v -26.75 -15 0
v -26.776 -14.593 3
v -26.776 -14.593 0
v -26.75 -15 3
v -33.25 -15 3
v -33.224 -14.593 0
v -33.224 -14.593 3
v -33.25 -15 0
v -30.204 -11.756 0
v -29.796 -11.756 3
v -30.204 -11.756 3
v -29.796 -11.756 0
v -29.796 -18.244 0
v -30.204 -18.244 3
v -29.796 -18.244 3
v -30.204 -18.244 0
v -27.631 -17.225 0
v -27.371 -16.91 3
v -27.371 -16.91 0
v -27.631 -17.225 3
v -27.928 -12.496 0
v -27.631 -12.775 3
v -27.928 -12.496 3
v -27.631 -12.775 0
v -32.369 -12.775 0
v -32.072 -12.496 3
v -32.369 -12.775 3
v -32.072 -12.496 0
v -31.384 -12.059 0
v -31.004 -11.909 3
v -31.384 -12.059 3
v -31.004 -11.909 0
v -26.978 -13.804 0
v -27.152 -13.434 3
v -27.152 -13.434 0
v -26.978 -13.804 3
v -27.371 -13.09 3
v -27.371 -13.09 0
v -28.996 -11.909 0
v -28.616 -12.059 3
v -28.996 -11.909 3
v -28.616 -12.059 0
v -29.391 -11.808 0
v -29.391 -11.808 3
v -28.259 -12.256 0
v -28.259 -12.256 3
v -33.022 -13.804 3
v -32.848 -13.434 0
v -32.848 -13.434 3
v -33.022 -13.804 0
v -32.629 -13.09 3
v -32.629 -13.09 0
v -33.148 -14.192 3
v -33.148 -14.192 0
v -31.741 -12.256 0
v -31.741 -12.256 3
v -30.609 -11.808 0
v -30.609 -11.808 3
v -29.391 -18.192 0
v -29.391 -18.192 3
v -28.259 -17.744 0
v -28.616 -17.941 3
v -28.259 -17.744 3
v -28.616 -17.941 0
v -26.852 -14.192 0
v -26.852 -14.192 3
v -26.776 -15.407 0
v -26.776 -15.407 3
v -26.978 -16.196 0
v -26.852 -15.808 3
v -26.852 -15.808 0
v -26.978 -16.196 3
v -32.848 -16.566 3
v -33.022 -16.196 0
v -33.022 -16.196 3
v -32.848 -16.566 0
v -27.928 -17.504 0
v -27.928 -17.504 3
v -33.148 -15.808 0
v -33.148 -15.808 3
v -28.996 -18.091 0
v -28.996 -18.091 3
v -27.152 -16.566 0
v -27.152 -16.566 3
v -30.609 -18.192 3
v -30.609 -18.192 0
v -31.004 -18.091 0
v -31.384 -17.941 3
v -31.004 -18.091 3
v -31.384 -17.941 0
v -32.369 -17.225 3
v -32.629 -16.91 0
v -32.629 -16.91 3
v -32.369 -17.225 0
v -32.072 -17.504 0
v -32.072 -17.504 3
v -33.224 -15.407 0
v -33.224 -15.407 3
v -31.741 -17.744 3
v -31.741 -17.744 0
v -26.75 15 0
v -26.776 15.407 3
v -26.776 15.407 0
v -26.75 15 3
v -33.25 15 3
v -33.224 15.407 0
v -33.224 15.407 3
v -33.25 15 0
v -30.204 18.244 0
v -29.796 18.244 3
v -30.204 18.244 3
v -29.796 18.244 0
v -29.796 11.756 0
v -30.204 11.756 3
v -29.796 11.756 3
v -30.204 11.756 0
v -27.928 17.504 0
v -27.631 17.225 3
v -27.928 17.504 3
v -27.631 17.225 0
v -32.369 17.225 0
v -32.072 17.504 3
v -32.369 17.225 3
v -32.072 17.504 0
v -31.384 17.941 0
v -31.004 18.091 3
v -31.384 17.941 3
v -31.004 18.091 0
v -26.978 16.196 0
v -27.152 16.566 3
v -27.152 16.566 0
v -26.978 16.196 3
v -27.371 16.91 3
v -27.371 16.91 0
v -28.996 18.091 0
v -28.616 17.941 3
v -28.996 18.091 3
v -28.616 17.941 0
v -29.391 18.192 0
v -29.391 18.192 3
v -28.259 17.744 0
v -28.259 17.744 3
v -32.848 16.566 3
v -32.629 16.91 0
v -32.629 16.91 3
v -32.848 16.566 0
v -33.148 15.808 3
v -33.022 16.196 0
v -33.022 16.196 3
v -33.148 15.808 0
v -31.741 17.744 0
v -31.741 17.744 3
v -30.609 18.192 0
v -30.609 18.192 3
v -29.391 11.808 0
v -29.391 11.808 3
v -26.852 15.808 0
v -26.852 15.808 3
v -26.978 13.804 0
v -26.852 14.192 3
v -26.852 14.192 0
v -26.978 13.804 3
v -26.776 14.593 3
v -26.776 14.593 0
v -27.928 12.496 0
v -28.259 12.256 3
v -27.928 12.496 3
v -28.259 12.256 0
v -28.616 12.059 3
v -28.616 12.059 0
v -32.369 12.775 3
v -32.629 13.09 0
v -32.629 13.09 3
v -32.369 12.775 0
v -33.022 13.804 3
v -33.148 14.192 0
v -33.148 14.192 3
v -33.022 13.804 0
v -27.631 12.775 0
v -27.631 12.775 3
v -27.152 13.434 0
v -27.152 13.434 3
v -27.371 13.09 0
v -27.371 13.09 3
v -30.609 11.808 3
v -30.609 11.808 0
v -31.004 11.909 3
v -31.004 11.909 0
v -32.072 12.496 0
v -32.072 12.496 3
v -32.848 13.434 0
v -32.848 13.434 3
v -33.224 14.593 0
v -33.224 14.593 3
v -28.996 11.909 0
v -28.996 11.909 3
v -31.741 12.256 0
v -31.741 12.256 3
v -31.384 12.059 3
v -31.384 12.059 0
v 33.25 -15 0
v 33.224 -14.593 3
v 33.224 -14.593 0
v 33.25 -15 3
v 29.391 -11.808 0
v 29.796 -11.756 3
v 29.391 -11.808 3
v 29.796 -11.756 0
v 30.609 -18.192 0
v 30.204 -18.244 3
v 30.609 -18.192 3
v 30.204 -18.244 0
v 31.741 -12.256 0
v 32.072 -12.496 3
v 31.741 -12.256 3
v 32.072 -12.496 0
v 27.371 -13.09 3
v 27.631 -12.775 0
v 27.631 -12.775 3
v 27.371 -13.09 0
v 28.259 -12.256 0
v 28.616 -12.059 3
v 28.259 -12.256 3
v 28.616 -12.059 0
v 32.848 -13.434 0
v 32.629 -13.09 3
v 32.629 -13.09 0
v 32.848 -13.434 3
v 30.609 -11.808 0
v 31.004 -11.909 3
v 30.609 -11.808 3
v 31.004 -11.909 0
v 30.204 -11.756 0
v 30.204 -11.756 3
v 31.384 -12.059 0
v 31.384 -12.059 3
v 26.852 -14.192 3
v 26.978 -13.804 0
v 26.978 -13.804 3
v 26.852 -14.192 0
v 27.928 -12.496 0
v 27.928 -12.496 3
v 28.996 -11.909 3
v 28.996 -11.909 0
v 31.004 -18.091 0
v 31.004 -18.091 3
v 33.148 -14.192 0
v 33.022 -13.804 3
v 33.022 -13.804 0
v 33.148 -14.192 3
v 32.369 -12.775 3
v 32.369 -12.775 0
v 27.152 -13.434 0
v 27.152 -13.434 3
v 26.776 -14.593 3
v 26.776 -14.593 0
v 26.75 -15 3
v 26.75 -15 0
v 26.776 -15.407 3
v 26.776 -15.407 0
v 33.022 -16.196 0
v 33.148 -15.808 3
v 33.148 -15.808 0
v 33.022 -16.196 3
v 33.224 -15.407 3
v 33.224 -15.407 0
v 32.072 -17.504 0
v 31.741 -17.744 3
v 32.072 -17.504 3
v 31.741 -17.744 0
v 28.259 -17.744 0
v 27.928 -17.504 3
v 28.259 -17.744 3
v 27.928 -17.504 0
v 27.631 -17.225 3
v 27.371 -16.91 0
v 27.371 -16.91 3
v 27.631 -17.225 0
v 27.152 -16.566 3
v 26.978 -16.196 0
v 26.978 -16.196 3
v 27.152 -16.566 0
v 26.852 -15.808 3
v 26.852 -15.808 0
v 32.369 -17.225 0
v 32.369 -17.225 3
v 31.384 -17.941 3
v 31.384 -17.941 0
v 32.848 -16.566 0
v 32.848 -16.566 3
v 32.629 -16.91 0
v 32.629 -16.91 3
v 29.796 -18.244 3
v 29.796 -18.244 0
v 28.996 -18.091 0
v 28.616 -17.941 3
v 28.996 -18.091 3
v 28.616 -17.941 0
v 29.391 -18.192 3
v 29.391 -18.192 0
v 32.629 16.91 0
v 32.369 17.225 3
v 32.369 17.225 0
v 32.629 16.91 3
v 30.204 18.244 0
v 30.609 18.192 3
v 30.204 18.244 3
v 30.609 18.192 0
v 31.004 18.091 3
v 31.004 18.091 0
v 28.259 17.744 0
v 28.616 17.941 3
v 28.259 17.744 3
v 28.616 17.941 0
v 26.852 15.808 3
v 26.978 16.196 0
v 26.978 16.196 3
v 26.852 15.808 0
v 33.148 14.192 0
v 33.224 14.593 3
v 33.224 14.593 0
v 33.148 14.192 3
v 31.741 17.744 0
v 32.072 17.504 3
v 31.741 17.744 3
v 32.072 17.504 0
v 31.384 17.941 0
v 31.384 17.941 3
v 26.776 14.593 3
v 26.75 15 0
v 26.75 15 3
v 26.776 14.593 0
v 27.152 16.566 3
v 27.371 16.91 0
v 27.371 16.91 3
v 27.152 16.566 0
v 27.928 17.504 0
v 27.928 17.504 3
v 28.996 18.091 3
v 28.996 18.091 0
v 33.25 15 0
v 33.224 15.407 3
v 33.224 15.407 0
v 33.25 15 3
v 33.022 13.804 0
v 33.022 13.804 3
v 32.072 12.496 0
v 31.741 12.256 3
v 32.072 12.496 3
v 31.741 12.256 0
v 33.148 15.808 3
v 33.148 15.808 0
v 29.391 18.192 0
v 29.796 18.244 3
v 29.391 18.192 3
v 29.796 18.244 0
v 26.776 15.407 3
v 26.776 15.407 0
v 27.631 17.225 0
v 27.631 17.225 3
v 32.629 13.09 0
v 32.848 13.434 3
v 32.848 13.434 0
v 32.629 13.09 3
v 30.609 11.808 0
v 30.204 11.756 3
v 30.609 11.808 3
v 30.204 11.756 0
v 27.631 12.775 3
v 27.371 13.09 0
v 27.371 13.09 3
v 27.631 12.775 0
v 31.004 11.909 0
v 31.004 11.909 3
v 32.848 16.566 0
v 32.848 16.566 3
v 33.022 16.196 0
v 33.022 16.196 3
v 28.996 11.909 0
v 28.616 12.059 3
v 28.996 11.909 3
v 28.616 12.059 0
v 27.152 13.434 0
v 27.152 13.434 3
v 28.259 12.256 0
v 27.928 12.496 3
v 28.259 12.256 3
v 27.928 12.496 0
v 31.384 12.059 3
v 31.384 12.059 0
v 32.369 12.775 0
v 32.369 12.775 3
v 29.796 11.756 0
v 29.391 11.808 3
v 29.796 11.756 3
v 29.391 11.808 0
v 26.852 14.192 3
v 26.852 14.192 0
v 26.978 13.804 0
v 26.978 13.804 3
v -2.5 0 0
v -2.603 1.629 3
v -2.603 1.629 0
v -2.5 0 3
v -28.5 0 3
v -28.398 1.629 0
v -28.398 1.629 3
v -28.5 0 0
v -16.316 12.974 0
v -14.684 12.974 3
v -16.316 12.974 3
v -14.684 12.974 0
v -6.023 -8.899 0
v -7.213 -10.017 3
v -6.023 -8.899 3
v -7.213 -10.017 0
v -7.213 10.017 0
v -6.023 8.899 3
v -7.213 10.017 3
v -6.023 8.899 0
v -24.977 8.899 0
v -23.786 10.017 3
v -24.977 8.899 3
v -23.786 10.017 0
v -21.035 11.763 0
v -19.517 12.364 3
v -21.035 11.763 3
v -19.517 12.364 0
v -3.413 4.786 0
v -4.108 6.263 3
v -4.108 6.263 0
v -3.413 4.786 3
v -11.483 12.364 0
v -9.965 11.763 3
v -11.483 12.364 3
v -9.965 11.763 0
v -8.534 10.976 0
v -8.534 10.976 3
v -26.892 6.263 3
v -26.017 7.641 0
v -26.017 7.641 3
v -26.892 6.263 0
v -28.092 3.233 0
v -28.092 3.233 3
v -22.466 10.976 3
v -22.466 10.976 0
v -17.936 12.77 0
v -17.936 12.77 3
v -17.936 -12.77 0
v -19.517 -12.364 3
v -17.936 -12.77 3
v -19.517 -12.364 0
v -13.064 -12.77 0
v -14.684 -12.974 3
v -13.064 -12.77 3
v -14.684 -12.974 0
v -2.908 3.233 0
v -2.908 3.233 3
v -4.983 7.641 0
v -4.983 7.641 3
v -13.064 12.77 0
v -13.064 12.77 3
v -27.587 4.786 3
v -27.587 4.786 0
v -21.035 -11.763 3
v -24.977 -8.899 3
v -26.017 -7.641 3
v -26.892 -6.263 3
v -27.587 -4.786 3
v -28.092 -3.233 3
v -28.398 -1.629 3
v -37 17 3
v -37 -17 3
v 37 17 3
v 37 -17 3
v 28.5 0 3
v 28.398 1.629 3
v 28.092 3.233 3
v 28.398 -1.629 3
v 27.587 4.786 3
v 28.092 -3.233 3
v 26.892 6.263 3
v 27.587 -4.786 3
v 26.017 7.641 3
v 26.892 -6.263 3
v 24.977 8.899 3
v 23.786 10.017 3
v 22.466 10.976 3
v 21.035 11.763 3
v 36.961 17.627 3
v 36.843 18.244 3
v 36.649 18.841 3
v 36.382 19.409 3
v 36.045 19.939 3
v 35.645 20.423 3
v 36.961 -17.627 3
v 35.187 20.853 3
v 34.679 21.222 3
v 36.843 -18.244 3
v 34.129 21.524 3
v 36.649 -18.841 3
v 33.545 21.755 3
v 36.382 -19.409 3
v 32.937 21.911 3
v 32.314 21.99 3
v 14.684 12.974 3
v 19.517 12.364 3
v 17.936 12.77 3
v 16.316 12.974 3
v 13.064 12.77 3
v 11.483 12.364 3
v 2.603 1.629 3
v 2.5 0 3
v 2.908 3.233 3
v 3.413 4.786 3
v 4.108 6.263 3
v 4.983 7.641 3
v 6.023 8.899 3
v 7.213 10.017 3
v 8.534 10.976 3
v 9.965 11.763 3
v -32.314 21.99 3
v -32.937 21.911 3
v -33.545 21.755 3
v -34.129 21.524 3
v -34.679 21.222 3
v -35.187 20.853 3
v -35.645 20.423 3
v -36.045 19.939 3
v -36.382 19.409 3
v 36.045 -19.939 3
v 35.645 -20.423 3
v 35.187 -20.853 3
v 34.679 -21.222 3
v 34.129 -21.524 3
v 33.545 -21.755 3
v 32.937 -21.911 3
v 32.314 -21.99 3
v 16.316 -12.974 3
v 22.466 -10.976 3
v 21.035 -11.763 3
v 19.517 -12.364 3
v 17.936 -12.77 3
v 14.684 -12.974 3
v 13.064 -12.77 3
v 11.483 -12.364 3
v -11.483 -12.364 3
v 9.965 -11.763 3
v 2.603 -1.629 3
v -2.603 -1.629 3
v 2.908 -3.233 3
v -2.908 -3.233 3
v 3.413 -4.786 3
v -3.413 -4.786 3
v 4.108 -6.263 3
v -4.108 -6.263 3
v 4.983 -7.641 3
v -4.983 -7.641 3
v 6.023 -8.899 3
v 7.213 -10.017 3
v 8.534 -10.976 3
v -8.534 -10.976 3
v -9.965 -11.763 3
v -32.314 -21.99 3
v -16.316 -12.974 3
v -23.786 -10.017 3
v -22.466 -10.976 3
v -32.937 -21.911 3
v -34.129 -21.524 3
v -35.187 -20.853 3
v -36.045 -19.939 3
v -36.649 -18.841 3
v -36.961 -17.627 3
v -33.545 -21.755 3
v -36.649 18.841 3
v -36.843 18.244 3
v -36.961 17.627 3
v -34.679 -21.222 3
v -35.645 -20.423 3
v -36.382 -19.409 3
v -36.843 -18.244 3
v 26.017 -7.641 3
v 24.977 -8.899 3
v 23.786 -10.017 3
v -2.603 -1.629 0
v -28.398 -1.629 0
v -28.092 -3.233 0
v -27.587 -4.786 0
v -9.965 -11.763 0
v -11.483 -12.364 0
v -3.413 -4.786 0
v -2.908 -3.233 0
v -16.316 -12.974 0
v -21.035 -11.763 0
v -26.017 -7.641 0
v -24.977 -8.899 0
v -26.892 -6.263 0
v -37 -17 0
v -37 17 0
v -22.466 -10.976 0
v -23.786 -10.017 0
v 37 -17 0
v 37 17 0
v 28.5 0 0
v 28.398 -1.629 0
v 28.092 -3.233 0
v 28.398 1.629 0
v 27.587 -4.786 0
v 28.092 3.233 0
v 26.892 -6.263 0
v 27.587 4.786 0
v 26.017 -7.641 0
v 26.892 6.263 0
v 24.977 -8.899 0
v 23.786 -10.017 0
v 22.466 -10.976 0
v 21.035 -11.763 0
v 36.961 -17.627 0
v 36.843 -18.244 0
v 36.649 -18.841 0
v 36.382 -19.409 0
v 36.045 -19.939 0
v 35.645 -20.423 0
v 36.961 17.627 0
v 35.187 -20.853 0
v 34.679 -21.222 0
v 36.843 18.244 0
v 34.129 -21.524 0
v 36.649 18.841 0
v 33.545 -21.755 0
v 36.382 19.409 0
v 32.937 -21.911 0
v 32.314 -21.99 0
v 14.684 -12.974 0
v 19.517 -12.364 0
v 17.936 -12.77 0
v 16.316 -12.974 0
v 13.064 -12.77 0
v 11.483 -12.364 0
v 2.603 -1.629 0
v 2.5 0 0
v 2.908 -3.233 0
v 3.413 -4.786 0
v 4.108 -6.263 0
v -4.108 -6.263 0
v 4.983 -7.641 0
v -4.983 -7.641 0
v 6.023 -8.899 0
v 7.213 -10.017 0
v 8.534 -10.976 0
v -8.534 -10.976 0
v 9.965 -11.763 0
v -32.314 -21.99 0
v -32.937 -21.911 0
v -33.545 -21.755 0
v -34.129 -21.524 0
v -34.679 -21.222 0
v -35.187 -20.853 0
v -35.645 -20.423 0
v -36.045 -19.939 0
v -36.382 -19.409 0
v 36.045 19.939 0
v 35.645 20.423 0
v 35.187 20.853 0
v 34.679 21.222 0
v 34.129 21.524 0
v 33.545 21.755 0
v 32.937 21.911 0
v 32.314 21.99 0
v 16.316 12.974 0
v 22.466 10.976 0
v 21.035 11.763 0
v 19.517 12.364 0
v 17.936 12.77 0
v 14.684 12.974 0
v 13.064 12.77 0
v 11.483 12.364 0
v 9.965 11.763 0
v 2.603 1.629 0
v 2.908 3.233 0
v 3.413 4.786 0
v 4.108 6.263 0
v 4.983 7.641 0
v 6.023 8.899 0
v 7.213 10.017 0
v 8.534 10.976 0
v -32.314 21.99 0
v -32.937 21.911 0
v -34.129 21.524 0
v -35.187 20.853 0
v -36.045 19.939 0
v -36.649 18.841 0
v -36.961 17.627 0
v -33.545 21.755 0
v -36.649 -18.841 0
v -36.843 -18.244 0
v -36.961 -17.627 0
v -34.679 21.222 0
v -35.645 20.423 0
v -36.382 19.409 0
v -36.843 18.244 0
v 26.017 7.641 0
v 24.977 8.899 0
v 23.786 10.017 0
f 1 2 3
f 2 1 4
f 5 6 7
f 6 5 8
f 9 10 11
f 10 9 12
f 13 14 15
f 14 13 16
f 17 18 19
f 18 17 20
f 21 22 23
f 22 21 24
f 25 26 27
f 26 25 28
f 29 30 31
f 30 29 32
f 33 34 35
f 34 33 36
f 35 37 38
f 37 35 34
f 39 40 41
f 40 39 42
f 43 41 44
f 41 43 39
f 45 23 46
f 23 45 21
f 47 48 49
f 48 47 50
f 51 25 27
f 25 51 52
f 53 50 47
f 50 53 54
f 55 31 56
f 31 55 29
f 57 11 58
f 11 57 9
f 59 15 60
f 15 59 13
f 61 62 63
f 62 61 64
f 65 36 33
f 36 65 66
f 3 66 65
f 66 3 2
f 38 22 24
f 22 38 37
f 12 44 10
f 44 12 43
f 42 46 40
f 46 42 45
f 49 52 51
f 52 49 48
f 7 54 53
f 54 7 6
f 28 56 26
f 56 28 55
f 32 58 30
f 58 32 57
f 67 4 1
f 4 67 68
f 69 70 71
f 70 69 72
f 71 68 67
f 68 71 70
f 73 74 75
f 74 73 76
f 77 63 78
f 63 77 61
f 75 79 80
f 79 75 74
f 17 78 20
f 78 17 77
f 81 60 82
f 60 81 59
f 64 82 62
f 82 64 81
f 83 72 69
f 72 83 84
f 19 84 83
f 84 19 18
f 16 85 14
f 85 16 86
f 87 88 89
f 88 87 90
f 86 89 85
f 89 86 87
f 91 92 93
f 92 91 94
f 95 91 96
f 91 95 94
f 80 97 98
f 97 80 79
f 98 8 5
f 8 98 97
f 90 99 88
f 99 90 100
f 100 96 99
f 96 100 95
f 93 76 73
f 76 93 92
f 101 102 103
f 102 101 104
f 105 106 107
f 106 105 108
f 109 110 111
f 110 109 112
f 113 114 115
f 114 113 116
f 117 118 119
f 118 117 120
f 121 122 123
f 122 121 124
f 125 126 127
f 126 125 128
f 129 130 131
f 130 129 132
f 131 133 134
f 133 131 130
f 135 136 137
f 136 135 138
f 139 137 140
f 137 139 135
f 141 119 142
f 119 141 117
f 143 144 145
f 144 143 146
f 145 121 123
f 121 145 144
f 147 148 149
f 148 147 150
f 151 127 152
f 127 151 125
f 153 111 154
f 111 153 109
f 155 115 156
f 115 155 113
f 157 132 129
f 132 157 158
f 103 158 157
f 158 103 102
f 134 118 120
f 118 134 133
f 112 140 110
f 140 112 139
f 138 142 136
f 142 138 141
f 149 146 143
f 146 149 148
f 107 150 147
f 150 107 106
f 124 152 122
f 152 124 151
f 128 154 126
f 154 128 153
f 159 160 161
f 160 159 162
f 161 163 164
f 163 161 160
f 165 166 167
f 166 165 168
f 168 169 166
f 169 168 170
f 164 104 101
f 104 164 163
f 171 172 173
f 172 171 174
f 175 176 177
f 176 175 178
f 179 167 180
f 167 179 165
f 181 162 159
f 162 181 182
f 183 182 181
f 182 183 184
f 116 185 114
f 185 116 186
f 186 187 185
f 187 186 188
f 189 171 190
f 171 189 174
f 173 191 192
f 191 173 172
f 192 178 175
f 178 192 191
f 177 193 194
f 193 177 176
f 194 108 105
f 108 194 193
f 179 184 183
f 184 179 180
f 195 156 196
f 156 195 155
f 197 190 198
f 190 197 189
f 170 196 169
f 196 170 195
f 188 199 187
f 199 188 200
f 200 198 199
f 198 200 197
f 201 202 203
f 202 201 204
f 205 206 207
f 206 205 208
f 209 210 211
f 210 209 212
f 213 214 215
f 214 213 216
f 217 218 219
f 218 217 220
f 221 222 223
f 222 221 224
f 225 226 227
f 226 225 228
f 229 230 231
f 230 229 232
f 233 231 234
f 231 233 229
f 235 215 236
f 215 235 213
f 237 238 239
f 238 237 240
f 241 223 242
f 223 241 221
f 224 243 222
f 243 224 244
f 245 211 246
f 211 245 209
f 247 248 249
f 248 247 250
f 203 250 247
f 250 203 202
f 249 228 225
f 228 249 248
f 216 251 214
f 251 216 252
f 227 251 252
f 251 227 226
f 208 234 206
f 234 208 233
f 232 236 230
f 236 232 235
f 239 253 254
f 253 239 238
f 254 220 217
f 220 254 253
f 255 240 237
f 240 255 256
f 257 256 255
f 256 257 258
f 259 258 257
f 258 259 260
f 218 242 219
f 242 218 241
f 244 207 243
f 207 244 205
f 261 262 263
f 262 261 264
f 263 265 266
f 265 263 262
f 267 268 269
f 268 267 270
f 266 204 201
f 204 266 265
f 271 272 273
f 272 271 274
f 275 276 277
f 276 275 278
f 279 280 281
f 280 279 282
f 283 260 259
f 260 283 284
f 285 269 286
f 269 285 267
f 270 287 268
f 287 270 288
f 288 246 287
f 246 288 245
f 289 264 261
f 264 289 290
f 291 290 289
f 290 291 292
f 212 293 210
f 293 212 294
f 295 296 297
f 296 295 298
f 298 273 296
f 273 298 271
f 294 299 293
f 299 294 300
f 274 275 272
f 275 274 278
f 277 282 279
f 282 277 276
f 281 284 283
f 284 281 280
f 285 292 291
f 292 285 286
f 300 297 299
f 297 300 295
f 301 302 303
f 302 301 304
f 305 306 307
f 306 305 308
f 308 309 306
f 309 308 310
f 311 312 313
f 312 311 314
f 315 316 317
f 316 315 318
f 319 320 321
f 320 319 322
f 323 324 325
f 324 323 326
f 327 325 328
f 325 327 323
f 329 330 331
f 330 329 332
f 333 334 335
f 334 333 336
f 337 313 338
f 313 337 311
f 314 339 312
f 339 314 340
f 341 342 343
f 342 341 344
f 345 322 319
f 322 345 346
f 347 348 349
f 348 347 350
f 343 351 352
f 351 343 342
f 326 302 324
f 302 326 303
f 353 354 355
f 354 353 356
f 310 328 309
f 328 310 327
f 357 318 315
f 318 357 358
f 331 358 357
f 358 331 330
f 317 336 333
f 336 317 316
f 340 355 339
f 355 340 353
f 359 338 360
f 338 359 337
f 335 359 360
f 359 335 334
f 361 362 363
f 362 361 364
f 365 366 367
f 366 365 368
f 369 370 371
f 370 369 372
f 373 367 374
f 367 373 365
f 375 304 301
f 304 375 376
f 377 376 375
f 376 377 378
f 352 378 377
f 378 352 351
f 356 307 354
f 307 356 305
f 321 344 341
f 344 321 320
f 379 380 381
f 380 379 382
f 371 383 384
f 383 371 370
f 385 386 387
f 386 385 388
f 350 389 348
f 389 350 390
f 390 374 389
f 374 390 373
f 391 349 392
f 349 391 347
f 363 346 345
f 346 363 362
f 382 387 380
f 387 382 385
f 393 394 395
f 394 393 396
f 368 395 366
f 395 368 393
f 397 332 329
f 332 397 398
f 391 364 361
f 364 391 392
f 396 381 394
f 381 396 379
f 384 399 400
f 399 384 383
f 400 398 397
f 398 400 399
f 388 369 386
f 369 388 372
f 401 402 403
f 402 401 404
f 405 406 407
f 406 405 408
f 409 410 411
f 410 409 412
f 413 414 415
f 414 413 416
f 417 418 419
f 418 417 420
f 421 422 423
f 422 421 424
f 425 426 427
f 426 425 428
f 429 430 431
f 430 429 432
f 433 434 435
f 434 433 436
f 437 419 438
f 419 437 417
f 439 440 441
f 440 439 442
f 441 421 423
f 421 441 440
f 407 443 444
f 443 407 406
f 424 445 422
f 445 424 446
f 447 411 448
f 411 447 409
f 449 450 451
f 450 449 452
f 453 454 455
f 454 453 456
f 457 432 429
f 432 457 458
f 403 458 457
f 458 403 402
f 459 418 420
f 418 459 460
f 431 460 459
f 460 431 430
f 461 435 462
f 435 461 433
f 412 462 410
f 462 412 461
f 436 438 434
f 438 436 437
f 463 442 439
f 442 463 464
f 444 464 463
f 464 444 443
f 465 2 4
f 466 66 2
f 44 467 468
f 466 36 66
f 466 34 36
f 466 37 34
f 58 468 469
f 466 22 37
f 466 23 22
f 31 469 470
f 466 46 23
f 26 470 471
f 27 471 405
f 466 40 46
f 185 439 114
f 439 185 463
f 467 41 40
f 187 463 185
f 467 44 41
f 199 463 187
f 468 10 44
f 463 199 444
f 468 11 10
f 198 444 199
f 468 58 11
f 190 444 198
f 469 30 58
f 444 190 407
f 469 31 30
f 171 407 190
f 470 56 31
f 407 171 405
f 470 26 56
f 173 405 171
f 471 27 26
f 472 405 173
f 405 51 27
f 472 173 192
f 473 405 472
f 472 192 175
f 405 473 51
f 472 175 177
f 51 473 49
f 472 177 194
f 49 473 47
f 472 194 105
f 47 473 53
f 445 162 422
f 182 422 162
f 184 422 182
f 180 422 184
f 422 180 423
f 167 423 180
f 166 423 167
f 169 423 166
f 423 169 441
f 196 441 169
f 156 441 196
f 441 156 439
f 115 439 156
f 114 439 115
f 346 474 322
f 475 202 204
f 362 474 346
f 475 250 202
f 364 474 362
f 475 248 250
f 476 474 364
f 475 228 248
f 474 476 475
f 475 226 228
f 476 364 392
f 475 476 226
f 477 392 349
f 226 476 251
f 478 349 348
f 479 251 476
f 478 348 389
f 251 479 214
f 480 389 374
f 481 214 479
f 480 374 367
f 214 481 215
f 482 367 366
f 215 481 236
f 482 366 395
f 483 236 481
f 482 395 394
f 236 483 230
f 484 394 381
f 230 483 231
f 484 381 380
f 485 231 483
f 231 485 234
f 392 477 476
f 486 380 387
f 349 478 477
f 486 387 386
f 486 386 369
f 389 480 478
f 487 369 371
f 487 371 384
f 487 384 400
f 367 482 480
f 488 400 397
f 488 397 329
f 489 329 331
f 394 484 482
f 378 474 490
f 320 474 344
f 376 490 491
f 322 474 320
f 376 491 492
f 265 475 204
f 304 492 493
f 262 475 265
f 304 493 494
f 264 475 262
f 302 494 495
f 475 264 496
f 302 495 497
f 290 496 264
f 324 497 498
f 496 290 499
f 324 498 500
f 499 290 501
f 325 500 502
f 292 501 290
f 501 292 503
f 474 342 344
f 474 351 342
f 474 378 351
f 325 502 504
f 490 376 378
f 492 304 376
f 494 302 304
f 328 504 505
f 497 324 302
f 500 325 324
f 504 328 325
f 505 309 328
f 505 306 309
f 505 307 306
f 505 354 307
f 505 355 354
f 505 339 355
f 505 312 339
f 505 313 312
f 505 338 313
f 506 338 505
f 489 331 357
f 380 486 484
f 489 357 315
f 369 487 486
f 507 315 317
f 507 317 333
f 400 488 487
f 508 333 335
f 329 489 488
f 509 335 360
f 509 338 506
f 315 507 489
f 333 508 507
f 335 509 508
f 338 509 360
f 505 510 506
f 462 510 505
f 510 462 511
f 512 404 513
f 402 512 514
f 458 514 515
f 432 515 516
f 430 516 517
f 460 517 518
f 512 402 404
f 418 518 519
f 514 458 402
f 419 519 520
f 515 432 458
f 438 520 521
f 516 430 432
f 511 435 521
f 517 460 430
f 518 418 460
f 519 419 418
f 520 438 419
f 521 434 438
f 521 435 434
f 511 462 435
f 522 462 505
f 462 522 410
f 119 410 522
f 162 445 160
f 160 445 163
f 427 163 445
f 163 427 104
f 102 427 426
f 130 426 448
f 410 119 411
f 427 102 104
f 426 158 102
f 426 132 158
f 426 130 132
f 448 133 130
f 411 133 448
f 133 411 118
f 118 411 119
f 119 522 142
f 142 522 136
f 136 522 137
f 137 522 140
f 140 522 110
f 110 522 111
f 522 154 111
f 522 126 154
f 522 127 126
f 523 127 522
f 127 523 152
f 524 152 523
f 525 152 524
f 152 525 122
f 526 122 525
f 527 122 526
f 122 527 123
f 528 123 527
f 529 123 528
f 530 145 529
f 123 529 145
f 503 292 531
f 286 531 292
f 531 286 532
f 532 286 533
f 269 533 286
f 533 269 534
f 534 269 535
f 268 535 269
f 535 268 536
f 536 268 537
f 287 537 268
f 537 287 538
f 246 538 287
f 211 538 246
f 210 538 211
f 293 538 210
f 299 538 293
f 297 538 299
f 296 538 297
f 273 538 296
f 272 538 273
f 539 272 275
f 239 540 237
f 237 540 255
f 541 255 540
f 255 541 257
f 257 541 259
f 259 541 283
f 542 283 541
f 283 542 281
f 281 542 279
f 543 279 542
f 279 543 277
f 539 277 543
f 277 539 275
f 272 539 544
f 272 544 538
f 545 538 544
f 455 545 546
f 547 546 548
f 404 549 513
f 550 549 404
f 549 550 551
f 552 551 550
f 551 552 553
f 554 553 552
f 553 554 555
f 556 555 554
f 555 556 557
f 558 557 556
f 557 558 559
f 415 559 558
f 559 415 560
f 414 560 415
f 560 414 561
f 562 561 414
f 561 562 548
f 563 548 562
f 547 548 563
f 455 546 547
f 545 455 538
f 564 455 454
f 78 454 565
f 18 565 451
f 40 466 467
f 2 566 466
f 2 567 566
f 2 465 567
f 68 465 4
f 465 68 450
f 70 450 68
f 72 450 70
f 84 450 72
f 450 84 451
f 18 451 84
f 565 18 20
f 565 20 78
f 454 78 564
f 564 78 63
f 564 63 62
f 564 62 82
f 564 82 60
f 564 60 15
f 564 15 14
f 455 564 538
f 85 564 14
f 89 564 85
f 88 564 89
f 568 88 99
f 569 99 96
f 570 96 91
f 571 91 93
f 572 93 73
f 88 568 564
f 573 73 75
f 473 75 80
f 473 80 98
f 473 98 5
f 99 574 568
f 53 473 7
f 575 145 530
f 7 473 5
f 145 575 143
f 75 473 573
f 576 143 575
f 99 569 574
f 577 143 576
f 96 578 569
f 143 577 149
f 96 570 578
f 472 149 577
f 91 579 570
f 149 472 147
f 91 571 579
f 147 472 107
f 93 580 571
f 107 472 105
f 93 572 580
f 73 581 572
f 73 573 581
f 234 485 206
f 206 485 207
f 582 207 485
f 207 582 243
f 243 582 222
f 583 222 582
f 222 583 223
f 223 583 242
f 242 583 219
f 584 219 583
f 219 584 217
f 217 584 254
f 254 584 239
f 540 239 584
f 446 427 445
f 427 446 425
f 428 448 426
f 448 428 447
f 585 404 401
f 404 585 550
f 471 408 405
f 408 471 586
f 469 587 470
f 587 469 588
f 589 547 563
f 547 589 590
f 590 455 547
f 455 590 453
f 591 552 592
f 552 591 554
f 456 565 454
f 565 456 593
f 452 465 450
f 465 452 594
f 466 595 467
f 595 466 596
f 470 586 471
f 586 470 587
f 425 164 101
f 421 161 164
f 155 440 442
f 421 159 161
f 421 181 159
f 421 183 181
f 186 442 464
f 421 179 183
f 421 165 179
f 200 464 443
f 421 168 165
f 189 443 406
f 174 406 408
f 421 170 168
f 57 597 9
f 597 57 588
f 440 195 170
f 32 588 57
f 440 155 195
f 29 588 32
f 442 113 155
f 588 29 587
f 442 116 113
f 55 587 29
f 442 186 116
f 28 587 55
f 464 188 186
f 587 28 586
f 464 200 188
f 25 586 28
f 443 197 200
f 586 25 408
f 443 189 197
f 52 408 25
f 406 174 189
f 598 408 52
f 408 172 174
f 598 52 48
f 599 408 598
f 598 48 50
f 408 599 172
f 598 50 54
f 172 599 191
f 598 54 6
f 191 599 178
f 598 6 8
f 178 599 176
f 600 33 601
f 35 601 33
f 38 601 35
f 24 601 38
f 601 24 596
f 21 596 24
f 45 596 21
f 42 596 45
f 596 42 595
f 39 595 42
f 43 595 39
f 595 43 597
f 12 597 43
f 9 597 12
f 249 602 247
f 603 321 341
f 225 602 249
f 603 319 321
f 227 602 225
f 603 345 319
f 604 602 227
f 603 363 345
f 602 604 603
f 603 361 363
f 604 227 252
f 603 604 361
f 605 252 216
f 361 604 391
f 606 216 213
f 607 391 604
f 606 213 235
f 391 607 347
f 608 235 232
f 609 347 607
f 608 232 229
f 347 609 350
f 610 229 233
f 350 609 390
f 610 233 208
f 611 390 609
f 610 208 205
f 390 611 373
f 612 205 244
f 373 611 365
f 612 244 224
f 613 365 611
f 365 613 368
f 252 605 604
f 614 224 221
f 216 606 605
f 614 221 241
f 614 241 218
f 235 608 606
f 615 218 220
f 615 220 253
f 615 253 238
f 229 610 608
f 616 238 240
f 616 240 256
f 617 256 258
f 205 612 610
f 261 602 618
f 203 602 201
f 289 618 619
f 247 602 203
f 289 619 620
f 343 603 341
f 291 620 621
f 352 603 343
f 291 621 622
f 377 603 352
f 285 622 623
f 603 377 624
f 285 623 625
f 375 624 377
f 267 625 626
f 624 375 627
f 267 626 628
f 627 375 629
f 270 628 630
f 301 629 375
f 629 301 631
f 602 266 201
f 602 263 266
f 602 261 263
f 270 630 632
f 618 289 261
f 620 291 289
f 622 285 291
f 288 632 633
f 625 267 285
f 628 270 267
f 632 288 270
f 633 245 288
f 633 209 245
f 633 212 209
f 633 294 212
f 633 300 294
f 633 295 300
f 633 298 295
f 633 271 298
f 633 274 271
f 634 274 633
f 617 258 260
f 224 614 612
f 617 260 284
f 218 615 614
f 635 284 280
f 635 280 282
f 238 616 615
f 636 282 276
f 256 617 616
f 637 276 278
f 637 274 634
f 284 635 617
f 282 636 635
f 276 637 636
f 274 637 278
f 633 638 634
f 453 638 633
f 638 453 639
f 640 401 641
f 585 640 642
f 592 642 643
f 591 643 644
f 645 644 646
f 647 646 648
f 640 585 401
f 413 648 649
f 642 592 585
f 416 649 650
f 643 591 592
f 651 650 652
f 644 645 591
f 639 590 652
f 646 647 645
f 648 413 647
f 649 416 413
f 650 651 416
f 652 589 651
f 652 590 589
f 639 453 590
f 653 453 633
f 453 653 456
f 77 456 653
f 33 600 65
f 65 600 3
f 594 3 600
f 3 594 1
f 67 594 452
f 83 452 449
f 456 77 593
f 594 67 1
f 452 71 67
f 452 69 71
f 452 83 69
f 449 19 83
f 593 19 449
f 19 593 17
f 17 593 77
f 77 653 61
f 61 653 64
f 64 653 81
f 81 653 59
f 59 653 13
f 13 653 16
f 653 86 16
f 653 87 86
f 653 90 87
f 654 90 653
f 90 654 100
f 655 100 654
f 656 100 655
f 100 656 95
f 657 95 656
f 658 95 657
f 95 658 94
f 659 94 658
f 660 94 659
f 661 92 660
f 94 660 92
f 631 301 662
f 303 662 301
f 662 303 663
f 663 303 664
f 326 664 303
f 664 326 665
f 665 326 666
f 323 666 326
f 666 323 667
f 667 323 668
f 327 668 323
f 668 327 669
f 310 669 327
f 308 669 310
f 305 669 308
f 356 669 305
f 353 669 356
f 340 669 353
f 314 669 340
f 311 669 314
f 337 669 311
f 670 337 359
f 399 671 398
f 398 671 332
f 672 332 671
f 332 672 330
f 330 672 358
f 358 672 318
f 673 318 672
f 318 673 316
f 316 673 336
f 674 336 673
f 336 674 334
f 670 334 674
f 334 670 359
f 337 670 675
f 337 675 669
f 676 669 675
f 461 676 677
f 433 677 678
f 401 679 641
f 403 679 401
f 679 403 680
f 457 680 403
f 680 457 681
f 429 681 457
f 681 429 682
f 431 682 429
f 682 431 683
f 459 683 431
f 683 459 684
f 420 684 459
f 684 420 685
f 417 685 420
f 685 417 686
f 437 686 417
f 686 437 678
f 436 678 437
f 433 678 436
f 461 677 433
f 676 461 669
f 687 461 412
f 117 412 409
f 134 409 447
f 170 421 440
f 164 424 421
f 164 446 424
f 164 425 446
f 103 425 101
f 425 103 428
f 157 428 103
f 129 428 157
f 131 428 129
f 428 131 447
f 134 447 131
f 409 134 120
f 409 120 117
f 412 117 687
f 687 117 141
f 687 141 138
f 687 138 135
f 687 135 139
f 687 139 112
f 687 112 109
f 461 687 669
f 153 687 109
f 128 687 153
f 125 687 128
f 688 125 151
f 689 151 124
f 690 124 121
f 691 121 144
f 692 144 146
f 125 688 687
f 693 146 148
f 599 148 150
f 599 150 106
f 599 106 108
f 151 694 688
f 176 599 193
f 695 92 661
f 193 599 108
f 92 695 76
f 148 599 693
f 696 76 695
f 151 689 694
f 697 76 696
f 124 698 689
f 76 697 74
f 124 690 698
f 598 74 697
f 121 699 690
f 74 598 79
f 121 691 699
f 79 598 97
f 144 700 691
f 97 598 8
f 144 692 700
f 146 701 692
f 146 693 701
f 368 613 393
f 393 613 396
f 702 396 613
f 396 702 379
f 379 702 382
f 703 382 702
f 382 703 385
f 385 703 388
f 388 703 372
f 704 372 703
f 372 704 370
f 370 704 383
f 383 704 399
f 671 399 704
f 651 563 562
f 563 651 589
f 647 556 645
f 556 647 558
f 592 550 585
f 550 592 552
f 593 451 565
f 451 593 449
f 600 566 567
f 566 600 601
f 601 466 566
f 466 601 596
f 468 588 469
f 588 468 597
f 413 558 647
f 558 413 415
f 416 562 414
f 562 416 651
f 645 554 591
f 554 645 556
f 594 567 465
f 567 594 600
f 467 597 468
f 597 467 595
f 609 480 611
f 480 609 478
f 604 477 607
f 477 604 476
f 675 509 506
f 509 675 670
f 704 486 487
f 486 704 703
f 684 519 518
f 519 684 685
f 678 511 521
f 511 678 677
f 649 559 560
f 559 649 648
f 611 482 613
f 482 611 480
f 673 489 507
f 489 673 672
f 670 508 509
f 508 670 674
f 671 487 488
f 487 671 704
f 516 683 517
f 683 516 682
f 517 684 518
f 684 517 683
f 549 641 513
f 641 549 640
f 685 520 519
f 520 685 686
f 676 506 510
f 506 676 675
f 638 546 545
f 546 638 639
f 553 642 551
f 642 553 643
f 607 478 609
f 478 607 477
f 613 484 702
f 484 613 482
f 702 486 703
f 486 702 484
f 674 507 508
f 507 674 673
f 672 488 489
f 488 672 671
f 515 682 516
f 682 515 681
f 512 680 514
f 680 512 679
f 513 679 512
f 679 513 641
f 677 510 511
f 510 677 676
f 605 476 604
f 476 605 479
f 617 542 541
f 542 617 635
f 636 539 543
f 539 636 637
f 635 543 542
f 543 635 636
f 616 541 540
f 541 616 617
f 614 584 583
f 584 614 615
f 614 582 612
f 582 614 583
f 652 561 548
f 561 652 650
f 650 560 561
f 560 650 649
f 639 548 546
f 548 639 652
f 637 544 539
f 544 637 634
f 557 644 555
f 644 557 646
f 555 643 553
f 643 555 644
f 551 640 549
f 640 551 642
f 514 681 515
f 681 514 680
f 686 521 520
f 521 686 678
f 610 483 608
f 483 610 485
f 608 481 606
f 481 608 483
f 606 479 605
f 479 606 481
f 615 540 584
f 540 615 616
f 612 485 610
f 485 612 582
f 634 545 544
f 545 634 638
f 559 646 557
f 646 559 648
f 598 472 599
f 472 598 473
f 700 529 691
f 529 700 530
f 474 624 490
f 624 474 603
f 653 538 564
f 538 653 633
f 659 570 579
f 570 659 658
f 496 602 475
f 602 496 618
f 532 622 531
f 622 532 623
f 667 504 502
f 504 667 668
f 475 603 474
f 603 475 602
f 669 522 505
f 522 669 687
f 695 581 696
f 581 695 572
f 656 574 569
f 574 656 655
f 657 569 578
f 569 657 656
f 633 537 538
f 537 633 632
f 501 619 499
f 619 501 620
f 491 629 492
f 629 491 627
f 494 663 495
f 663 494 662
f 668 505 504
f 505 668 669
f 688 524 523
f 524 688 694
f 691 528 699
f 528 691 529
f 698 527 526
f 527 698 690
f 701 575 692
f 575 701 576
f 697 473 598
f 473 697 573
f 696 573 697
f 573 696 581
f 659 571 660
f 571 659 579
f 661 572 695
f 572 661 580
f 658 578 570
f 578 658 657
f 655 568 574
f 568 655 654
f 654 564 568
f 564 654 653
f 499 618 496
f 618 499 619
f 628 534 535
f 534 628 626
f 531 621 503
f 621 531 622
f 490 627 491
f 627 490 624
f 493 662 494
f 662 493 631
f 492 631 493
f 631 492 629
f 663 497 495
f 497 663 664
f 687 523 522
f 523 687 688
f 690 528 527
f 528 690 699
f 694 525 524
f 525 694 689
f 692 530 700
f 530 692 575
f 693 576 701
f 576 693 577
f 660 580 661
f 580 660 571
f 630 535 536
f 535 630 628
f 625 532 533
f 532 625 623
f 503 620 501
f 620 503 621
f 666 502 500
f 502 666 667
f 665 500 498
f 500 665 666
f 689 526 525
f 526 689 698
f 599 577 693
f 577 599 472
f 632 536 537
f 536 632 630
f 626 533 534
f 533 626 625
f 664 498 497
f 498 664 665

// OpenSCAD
$fn = 50;


difference() {
	union() {
		hull() {
			translate(v = [-32.0000000000, 17.0000000000, 0]) {
				cylinder(h = 3, r = 5);
			}
			translate(v = [32.0000000000, 17.0000000000, 0]) {
				cylinder(h = 3, r = 5);
			}
			translate(v = [-32.0000000000, -17.0000000000, 0]) {
				cylinder(h = 3, r = 5);
			}
			translate(v = [32.0000000000, -17.0000000000, 0]) {
				cylinder(h = 3, r = 5);
			}
		}
	}
	union() {
		#translate(v = [-30.0000000000, -15.0000000000, -100.0000000000]) {
			cylinder(h = 200, r = 3.2500000000);
		}
		#translate(v = [-30.0000000000, 15.0000000000, -100.0000000000]) {
			cylinder(h = 200, r = 3.2500000000);
		}
		#translate(v = [30.0000000000, -15.0000000000, -100.0000000000]) {
			cylinder(h = 200, r = 3.2500000000);
		}
		#translate(v = [30.0000000000, 15.0000000000, -100.0000000000]) {
			cylinder(h = 200, r = 3.2500000000);
		}
		#translate(v = [-15.5000000000, 0, 0]) {
			cylinder(h = 3, r = 13.0000000000);
		}
		#translate(v = [15.5000000000, 0, 0]) {
			cylinder(h = 3, r = 13.0000000000);
		}
	}
}
